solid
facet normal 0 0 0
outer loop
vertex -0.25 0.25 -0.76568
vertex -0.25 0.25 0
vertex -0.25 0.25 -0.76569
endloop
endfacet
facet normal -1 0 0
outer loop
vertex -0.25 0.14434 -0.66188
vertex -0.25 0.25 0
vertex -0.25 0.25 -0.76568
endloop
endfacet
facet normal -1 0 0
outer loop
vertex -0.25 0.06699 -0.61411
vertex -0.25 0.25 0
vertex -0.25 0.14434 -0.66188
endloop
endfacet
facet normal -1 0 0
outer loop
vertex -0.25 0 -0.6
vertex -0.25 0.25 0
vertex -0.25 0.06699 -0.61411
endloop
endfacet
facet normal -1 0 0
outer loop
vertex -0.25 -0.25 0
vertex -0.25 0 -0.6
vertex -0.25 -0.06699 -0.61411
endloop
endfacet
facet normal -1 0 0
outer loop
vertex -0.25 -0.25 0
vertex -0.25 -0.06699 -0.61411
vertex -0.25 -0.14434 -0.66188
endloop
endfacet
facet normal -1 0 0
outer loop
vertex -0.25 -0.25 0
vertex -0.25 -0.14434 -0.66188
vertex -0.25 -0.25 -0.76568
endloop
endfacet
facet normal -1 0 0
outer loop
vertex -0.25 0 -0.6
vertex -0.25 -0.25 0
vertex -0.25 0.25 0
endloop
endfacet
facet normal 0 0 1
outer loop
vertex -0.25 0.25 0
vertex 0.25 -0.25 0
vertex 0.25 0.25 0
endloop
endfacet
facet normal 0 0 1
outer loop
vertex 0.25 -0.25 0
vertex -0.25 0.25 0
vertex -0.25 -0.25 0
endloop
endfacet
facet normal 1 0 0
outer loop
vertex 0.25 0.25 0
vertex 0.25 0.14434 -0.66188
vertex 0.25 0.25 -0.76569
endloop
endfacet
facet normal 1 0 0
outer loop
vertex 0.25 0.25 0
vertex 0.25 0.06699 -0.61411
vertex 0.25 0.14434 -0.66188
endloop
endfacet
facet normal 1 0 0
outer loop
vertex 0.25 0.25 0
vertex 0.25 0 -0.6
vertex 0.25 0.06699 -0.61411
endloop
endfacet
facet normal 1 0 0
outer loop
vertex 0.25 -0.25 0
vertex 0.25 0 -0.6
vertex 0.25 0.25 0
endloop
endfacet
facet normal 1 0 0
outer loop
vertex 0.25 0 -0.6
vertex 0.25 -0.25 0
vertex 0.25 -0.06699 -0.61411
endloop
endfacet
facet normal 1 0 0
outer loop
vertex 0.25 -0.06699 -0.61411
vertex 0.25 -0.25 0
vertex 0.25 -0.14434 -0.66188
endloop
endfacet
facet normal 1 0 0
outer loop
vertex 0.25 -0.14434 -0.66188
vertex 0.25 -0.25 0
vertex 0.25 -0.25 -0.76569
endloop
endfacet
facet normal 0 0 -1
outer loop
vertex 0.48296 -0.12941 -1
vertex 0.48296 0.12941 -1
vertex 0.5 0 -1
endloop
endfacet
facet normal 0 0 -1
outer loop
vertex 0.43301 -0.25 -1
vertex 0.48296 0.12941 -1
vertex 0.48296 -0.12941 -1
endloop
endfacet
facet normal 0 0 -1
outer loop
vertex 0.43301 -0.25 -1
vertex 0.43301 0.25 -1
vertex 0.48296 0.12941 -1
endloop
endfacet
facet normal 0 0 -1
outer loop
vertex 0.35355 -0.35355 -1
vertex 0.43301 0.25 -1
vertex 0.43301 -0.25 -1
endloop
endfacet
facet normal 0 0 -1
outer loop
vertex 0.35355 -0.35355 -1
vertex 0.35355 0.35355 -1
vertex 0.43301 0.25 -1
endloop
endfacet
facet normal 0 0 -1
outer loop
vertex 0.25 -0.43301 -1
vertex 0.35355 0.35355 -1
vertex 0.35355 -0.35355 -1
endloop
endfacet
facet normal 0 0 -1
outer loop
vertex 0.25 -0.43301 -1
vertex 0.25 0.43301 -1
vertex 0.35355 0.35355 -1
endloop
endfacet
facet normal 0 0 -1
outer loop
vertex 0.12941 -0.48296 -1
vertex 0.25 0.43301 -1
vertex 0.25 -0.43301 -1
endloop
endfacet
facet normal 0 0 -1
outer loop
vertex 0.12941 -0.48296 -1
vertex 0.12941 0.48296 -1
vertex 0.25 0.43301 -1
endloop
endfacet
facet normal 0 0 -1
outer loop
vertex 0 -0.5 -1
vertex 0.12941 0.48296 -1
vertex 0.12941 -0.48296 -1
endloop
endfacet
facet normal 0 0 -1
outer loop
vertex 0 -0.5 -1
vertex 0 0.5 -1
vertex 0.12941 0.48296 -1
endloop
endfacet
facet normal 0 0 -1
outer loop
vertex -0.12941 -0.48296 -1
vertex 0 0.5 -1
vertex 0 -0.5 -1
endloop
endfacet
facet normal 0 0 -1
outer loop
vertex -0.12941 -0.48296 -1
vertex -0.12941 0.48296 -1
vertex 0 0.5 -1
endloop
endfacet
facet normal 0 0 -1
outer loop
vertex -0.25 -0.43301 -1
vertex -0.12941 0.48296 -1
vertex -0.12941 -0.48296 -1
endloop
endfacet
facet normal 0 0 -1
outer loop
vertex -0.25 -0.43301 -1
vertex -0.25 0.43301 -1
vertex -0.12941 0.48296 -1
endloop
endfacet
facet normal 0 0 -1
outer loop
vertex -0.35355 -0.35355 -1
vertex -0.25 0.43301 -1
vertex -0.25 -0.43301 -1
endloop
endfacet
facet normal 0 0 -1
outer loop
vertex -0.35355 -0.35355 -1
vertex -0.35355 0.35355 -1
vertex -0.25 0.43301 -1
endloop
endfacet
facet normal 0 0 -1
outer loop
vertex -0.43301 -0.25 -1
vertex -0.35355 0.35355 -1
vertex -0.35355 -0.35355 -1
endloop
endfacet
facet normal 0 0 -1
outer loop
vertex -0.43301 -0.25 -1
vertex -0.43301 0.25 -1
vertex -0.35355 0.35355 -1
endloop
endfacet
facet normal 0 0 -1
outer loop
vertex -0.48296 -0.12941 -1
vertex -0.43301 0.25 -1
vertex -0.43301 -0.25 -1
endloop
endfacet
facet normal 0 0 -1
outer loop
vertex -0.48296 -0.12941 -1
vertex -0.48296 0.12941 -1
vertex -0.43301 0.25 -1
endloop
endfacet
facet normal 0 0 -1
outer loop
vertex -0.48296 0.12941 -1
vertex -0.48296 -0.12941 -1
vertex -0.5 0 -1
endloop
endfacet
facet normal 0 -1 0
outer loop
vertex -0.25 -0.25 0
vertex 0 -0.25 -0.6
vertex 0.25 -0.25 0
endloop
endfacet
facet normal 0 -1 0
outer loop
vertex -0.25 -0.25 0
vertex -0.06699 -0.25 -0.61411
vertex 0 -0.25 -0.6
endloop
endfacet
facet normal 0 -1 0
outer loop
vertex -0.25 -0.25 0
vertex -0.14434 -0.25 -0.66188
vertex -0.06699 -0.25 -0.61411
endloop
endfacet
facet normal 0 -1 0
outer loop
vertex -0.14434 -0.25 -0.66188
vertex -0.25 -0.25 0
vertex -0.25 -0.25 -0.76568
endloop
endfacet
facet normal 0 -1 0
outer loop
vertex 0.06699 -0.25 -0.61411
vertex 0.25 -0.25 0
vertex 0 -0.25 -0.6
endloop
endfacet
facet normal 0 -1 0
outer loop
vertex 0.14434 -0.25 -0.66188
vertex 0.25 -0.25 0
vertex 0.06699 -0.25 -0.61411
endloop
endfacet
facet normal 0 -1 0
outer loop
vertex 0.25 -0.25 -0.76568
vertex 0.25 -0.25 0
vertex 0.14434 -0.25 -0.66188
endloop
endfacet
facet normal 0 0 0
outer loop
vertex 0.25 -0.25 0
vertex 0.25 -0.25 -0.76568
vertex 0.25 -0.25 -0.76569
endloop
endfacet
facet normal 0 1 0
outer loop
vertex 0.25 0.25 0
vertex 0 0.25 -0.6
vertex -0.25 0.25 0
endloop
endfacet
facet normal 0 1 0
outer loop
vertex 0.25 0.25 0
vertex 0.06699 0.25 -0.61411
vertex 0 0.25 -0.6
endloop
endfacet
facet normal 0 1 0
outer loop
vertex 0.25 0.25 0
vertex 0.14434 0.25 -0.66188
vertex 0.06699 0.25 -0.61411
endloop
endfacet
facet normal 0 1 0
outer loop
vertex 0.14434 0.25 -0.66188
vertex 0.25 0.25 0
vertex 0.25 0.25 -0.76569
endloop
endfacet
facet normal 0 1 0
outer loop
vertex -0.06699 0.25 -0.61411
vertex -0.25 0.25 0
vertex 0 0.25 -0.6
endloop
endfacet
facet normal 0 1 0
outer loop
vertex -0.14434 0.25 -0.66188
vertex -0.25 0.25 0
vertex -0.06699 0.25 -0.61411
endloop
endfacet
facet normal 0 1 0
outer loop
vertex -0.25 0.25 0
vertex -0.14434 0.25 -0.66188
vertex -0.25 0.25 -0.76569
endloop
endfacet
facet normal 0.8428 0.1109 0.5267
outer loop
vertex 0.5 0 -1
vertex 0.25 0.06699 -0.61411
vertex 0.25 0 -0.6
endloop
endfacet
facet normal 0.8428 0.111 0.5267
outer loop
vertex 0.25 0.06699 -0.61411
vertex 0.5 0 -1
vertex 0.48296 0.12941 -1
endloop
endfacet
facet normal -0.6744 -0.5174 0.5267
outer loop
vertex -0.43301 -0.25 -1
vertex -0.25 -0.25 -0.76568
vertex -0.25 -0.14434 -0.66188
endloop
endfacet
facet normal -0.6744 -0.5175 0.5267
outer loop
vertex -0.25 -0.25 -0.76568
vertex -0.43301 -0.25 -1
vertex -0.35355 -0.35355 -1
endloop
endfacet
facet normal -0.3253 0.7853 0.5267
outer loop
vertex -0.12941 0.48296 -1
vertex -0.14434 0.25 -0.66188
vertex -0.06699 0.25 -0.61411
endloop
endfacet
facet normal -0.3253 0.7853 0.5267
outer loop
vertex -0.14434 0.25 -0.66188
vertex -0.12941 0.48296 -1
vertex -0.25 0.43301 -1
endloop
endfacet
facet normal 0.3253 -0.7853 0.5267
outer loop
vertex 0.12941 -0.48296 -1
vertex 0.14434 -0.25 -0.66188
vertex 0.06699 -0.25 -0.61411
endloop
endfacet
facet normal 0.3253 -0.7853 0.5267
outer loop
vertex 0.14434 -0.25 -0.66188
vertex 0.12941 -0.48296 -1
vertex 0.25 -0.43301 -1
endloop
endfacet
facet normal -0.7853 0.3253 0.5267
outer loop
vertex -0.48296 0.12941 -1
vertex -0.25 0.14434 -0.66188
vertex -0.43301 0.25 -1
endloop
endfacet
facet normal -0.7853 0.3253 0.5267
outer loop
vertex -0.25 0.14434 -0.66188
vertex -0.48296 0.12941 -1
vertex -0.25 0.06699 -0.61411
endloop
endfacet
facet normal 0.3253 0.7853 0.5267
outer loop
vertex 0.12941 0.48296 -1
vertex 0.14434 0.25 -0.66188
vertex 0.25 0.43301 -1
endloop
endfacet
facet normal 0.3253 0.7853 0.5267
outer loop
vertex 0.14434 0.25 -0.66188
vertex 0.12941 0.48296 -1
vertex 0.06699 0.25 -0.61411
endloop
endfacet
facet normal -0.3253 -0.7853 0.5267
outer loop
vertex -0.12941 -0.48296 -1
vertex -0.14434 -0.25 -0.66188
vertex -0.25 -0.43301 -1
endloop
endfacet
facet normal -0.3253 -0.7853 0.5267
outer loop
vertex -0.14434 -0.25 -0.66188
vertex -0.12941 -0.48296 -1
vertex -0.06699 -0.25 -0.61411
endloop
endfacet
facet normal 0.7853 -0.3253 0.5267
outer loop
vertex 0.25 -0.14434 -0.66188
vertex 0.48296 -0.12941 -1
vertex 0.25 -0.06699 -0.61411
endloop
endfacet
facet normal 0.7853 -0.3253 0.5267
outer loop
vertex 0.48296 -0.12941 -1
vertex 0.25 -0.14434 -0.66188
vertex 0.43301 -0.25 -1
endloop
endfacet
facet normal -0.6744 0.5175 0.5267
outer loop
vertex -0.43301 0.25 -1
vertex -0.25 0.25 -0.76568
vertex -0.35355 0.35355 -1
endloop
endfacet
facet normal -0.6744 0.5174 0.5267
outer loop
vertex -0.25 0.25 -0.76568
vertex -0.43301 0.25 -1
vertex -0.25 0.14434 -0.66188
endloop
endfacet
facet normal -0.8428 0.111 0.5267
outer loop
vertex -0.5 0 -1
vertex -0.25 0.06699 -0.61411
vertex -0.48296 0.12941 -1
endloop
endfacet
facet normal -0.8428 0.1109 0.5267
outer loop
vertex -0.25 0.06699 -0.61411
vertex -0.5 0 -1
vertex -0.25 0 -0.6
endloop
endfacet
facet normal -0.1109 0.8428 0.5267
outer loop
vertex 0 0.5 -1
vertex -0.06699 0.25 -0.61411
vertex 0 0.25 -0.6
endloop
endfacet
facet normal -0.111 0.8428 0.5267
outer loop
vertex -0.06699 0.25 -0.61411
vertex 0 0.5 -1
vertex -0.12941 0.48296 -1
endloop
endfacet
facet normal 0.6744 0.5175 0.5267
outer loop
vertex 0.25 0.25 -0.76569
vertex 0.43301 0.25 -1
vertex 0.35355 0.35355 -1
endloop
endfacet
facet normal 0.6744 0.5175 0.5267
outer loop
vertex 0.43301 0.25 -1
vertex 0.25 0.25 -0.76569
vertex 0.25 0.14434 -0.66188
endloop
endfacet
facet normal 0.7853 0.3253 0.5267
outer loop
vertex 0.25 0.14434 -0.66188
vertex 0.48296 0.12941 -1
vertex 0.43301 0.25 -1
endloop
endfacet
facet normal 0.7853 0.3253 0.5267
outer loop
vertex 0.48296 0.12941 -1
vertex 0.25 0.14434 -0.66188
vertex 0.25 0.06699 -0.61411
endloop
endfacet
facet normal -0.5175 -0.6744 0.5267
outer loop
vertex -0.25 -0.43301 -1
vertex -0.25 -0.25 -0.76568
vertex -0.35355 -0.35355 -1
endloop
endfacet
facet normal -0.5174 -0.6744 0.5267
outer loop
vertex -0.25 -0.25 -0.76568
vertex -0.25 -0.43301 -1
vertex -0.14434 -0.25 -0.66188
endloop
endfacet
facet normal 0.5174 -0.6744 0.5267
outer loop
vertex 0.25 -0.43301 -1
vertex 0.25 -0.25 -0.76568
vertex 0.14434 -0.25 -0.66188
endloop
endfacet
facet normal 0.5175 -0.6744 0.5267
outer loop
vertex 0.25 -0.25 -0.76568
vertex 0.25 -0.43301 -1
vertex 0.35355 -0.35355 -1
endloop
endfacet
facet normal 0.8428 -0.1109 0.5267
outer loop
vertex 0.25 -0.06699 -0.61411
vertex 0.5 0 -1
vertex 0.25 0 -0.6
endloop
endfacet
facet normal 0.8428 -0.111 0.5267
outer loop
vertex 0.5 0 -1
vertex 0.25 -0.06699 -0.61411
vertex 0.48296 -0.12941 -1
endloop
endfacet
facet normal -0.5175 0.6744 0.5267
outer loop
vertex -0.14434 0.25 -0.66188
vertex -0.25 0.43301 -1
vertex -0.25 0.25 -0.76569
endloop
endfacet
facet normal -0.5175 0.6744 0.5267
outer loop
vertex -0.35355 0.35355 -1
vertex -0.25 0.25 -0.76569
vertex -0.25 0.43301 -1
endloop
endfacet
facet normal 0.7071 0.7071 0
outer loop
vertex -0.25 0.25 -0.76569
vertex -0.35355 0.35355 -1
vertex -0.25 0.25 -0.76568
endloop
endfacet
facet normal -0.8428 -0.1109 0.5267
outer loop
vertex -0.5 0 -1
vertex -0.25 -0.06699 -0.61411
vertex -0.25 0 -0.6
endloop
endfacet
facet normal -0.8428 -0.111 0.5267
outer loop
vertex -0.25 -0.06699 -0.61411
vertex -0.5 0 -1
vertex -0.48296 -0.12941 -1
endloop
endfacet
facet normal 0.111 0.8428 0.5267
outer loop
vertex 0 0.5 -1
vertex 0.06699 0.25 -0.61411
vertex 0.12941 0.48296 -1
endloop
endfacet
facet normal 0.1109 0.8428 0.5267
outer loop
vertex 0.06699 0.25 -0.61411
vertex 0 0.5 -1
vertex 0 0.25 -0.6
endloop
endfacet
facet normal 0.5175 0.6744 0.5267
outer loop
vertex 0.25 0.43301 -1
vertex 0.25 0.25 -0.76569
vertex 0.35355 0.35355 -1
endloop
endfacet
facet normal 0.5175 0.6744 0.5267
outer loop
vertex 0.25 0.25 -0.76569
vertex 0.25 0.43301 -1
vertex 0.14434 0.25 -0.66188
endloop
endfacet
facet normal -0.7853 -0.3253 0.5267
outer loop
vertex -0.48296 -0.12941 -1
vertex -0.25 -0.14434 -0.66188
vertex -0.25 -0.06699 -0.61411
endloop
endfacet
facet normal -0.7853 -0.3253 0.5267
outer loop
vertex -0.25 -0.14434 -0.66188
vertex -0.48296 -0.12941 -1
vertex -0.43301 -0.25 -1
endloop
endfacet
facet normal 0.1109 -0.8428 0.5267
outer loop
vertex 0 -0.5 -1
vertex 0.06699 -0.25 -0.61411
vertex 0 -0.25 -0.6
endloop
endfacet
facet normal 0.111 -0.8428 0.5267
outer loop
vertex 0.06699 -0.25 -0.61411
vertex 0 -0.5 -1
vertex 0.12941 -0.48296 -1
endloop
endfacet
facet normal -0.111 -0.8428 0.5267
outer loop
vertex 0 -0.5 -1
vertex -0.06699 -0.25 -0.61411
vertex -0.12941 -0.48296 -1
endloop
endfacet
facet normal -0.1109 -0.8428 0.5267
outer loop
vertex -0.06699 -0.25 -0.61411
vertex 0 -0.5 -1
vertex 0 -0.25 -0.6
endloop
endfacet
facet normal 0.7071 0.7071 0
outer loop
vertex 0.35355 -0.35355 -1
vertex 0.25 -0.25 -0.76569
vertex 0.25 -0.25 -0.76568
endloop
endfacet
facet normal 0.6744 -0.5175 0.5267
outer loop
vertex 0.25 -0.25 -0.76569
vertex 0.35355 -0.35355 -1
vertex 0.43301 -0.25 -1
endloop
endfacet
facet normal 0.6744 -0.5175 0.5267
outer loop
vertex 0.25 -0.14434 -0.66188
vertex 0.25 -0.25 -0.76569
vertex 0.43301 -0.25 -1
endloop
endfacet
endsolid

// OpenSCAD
//----------------------------------------------
// Pillar Support 
// Size must be 1x1x1 
//----------------------------------------------
$fn=24;

translate([-0.5,-0.5,-0.5]) 
union() {
    translate([0.5,0.5,0.0]) cube([0.5,0.5,1.0], center = true);
    translate([0.5,0.5,-0.1]) cylinder(h=0.8, r1=0.5, r2=0.0, center = true);
}
